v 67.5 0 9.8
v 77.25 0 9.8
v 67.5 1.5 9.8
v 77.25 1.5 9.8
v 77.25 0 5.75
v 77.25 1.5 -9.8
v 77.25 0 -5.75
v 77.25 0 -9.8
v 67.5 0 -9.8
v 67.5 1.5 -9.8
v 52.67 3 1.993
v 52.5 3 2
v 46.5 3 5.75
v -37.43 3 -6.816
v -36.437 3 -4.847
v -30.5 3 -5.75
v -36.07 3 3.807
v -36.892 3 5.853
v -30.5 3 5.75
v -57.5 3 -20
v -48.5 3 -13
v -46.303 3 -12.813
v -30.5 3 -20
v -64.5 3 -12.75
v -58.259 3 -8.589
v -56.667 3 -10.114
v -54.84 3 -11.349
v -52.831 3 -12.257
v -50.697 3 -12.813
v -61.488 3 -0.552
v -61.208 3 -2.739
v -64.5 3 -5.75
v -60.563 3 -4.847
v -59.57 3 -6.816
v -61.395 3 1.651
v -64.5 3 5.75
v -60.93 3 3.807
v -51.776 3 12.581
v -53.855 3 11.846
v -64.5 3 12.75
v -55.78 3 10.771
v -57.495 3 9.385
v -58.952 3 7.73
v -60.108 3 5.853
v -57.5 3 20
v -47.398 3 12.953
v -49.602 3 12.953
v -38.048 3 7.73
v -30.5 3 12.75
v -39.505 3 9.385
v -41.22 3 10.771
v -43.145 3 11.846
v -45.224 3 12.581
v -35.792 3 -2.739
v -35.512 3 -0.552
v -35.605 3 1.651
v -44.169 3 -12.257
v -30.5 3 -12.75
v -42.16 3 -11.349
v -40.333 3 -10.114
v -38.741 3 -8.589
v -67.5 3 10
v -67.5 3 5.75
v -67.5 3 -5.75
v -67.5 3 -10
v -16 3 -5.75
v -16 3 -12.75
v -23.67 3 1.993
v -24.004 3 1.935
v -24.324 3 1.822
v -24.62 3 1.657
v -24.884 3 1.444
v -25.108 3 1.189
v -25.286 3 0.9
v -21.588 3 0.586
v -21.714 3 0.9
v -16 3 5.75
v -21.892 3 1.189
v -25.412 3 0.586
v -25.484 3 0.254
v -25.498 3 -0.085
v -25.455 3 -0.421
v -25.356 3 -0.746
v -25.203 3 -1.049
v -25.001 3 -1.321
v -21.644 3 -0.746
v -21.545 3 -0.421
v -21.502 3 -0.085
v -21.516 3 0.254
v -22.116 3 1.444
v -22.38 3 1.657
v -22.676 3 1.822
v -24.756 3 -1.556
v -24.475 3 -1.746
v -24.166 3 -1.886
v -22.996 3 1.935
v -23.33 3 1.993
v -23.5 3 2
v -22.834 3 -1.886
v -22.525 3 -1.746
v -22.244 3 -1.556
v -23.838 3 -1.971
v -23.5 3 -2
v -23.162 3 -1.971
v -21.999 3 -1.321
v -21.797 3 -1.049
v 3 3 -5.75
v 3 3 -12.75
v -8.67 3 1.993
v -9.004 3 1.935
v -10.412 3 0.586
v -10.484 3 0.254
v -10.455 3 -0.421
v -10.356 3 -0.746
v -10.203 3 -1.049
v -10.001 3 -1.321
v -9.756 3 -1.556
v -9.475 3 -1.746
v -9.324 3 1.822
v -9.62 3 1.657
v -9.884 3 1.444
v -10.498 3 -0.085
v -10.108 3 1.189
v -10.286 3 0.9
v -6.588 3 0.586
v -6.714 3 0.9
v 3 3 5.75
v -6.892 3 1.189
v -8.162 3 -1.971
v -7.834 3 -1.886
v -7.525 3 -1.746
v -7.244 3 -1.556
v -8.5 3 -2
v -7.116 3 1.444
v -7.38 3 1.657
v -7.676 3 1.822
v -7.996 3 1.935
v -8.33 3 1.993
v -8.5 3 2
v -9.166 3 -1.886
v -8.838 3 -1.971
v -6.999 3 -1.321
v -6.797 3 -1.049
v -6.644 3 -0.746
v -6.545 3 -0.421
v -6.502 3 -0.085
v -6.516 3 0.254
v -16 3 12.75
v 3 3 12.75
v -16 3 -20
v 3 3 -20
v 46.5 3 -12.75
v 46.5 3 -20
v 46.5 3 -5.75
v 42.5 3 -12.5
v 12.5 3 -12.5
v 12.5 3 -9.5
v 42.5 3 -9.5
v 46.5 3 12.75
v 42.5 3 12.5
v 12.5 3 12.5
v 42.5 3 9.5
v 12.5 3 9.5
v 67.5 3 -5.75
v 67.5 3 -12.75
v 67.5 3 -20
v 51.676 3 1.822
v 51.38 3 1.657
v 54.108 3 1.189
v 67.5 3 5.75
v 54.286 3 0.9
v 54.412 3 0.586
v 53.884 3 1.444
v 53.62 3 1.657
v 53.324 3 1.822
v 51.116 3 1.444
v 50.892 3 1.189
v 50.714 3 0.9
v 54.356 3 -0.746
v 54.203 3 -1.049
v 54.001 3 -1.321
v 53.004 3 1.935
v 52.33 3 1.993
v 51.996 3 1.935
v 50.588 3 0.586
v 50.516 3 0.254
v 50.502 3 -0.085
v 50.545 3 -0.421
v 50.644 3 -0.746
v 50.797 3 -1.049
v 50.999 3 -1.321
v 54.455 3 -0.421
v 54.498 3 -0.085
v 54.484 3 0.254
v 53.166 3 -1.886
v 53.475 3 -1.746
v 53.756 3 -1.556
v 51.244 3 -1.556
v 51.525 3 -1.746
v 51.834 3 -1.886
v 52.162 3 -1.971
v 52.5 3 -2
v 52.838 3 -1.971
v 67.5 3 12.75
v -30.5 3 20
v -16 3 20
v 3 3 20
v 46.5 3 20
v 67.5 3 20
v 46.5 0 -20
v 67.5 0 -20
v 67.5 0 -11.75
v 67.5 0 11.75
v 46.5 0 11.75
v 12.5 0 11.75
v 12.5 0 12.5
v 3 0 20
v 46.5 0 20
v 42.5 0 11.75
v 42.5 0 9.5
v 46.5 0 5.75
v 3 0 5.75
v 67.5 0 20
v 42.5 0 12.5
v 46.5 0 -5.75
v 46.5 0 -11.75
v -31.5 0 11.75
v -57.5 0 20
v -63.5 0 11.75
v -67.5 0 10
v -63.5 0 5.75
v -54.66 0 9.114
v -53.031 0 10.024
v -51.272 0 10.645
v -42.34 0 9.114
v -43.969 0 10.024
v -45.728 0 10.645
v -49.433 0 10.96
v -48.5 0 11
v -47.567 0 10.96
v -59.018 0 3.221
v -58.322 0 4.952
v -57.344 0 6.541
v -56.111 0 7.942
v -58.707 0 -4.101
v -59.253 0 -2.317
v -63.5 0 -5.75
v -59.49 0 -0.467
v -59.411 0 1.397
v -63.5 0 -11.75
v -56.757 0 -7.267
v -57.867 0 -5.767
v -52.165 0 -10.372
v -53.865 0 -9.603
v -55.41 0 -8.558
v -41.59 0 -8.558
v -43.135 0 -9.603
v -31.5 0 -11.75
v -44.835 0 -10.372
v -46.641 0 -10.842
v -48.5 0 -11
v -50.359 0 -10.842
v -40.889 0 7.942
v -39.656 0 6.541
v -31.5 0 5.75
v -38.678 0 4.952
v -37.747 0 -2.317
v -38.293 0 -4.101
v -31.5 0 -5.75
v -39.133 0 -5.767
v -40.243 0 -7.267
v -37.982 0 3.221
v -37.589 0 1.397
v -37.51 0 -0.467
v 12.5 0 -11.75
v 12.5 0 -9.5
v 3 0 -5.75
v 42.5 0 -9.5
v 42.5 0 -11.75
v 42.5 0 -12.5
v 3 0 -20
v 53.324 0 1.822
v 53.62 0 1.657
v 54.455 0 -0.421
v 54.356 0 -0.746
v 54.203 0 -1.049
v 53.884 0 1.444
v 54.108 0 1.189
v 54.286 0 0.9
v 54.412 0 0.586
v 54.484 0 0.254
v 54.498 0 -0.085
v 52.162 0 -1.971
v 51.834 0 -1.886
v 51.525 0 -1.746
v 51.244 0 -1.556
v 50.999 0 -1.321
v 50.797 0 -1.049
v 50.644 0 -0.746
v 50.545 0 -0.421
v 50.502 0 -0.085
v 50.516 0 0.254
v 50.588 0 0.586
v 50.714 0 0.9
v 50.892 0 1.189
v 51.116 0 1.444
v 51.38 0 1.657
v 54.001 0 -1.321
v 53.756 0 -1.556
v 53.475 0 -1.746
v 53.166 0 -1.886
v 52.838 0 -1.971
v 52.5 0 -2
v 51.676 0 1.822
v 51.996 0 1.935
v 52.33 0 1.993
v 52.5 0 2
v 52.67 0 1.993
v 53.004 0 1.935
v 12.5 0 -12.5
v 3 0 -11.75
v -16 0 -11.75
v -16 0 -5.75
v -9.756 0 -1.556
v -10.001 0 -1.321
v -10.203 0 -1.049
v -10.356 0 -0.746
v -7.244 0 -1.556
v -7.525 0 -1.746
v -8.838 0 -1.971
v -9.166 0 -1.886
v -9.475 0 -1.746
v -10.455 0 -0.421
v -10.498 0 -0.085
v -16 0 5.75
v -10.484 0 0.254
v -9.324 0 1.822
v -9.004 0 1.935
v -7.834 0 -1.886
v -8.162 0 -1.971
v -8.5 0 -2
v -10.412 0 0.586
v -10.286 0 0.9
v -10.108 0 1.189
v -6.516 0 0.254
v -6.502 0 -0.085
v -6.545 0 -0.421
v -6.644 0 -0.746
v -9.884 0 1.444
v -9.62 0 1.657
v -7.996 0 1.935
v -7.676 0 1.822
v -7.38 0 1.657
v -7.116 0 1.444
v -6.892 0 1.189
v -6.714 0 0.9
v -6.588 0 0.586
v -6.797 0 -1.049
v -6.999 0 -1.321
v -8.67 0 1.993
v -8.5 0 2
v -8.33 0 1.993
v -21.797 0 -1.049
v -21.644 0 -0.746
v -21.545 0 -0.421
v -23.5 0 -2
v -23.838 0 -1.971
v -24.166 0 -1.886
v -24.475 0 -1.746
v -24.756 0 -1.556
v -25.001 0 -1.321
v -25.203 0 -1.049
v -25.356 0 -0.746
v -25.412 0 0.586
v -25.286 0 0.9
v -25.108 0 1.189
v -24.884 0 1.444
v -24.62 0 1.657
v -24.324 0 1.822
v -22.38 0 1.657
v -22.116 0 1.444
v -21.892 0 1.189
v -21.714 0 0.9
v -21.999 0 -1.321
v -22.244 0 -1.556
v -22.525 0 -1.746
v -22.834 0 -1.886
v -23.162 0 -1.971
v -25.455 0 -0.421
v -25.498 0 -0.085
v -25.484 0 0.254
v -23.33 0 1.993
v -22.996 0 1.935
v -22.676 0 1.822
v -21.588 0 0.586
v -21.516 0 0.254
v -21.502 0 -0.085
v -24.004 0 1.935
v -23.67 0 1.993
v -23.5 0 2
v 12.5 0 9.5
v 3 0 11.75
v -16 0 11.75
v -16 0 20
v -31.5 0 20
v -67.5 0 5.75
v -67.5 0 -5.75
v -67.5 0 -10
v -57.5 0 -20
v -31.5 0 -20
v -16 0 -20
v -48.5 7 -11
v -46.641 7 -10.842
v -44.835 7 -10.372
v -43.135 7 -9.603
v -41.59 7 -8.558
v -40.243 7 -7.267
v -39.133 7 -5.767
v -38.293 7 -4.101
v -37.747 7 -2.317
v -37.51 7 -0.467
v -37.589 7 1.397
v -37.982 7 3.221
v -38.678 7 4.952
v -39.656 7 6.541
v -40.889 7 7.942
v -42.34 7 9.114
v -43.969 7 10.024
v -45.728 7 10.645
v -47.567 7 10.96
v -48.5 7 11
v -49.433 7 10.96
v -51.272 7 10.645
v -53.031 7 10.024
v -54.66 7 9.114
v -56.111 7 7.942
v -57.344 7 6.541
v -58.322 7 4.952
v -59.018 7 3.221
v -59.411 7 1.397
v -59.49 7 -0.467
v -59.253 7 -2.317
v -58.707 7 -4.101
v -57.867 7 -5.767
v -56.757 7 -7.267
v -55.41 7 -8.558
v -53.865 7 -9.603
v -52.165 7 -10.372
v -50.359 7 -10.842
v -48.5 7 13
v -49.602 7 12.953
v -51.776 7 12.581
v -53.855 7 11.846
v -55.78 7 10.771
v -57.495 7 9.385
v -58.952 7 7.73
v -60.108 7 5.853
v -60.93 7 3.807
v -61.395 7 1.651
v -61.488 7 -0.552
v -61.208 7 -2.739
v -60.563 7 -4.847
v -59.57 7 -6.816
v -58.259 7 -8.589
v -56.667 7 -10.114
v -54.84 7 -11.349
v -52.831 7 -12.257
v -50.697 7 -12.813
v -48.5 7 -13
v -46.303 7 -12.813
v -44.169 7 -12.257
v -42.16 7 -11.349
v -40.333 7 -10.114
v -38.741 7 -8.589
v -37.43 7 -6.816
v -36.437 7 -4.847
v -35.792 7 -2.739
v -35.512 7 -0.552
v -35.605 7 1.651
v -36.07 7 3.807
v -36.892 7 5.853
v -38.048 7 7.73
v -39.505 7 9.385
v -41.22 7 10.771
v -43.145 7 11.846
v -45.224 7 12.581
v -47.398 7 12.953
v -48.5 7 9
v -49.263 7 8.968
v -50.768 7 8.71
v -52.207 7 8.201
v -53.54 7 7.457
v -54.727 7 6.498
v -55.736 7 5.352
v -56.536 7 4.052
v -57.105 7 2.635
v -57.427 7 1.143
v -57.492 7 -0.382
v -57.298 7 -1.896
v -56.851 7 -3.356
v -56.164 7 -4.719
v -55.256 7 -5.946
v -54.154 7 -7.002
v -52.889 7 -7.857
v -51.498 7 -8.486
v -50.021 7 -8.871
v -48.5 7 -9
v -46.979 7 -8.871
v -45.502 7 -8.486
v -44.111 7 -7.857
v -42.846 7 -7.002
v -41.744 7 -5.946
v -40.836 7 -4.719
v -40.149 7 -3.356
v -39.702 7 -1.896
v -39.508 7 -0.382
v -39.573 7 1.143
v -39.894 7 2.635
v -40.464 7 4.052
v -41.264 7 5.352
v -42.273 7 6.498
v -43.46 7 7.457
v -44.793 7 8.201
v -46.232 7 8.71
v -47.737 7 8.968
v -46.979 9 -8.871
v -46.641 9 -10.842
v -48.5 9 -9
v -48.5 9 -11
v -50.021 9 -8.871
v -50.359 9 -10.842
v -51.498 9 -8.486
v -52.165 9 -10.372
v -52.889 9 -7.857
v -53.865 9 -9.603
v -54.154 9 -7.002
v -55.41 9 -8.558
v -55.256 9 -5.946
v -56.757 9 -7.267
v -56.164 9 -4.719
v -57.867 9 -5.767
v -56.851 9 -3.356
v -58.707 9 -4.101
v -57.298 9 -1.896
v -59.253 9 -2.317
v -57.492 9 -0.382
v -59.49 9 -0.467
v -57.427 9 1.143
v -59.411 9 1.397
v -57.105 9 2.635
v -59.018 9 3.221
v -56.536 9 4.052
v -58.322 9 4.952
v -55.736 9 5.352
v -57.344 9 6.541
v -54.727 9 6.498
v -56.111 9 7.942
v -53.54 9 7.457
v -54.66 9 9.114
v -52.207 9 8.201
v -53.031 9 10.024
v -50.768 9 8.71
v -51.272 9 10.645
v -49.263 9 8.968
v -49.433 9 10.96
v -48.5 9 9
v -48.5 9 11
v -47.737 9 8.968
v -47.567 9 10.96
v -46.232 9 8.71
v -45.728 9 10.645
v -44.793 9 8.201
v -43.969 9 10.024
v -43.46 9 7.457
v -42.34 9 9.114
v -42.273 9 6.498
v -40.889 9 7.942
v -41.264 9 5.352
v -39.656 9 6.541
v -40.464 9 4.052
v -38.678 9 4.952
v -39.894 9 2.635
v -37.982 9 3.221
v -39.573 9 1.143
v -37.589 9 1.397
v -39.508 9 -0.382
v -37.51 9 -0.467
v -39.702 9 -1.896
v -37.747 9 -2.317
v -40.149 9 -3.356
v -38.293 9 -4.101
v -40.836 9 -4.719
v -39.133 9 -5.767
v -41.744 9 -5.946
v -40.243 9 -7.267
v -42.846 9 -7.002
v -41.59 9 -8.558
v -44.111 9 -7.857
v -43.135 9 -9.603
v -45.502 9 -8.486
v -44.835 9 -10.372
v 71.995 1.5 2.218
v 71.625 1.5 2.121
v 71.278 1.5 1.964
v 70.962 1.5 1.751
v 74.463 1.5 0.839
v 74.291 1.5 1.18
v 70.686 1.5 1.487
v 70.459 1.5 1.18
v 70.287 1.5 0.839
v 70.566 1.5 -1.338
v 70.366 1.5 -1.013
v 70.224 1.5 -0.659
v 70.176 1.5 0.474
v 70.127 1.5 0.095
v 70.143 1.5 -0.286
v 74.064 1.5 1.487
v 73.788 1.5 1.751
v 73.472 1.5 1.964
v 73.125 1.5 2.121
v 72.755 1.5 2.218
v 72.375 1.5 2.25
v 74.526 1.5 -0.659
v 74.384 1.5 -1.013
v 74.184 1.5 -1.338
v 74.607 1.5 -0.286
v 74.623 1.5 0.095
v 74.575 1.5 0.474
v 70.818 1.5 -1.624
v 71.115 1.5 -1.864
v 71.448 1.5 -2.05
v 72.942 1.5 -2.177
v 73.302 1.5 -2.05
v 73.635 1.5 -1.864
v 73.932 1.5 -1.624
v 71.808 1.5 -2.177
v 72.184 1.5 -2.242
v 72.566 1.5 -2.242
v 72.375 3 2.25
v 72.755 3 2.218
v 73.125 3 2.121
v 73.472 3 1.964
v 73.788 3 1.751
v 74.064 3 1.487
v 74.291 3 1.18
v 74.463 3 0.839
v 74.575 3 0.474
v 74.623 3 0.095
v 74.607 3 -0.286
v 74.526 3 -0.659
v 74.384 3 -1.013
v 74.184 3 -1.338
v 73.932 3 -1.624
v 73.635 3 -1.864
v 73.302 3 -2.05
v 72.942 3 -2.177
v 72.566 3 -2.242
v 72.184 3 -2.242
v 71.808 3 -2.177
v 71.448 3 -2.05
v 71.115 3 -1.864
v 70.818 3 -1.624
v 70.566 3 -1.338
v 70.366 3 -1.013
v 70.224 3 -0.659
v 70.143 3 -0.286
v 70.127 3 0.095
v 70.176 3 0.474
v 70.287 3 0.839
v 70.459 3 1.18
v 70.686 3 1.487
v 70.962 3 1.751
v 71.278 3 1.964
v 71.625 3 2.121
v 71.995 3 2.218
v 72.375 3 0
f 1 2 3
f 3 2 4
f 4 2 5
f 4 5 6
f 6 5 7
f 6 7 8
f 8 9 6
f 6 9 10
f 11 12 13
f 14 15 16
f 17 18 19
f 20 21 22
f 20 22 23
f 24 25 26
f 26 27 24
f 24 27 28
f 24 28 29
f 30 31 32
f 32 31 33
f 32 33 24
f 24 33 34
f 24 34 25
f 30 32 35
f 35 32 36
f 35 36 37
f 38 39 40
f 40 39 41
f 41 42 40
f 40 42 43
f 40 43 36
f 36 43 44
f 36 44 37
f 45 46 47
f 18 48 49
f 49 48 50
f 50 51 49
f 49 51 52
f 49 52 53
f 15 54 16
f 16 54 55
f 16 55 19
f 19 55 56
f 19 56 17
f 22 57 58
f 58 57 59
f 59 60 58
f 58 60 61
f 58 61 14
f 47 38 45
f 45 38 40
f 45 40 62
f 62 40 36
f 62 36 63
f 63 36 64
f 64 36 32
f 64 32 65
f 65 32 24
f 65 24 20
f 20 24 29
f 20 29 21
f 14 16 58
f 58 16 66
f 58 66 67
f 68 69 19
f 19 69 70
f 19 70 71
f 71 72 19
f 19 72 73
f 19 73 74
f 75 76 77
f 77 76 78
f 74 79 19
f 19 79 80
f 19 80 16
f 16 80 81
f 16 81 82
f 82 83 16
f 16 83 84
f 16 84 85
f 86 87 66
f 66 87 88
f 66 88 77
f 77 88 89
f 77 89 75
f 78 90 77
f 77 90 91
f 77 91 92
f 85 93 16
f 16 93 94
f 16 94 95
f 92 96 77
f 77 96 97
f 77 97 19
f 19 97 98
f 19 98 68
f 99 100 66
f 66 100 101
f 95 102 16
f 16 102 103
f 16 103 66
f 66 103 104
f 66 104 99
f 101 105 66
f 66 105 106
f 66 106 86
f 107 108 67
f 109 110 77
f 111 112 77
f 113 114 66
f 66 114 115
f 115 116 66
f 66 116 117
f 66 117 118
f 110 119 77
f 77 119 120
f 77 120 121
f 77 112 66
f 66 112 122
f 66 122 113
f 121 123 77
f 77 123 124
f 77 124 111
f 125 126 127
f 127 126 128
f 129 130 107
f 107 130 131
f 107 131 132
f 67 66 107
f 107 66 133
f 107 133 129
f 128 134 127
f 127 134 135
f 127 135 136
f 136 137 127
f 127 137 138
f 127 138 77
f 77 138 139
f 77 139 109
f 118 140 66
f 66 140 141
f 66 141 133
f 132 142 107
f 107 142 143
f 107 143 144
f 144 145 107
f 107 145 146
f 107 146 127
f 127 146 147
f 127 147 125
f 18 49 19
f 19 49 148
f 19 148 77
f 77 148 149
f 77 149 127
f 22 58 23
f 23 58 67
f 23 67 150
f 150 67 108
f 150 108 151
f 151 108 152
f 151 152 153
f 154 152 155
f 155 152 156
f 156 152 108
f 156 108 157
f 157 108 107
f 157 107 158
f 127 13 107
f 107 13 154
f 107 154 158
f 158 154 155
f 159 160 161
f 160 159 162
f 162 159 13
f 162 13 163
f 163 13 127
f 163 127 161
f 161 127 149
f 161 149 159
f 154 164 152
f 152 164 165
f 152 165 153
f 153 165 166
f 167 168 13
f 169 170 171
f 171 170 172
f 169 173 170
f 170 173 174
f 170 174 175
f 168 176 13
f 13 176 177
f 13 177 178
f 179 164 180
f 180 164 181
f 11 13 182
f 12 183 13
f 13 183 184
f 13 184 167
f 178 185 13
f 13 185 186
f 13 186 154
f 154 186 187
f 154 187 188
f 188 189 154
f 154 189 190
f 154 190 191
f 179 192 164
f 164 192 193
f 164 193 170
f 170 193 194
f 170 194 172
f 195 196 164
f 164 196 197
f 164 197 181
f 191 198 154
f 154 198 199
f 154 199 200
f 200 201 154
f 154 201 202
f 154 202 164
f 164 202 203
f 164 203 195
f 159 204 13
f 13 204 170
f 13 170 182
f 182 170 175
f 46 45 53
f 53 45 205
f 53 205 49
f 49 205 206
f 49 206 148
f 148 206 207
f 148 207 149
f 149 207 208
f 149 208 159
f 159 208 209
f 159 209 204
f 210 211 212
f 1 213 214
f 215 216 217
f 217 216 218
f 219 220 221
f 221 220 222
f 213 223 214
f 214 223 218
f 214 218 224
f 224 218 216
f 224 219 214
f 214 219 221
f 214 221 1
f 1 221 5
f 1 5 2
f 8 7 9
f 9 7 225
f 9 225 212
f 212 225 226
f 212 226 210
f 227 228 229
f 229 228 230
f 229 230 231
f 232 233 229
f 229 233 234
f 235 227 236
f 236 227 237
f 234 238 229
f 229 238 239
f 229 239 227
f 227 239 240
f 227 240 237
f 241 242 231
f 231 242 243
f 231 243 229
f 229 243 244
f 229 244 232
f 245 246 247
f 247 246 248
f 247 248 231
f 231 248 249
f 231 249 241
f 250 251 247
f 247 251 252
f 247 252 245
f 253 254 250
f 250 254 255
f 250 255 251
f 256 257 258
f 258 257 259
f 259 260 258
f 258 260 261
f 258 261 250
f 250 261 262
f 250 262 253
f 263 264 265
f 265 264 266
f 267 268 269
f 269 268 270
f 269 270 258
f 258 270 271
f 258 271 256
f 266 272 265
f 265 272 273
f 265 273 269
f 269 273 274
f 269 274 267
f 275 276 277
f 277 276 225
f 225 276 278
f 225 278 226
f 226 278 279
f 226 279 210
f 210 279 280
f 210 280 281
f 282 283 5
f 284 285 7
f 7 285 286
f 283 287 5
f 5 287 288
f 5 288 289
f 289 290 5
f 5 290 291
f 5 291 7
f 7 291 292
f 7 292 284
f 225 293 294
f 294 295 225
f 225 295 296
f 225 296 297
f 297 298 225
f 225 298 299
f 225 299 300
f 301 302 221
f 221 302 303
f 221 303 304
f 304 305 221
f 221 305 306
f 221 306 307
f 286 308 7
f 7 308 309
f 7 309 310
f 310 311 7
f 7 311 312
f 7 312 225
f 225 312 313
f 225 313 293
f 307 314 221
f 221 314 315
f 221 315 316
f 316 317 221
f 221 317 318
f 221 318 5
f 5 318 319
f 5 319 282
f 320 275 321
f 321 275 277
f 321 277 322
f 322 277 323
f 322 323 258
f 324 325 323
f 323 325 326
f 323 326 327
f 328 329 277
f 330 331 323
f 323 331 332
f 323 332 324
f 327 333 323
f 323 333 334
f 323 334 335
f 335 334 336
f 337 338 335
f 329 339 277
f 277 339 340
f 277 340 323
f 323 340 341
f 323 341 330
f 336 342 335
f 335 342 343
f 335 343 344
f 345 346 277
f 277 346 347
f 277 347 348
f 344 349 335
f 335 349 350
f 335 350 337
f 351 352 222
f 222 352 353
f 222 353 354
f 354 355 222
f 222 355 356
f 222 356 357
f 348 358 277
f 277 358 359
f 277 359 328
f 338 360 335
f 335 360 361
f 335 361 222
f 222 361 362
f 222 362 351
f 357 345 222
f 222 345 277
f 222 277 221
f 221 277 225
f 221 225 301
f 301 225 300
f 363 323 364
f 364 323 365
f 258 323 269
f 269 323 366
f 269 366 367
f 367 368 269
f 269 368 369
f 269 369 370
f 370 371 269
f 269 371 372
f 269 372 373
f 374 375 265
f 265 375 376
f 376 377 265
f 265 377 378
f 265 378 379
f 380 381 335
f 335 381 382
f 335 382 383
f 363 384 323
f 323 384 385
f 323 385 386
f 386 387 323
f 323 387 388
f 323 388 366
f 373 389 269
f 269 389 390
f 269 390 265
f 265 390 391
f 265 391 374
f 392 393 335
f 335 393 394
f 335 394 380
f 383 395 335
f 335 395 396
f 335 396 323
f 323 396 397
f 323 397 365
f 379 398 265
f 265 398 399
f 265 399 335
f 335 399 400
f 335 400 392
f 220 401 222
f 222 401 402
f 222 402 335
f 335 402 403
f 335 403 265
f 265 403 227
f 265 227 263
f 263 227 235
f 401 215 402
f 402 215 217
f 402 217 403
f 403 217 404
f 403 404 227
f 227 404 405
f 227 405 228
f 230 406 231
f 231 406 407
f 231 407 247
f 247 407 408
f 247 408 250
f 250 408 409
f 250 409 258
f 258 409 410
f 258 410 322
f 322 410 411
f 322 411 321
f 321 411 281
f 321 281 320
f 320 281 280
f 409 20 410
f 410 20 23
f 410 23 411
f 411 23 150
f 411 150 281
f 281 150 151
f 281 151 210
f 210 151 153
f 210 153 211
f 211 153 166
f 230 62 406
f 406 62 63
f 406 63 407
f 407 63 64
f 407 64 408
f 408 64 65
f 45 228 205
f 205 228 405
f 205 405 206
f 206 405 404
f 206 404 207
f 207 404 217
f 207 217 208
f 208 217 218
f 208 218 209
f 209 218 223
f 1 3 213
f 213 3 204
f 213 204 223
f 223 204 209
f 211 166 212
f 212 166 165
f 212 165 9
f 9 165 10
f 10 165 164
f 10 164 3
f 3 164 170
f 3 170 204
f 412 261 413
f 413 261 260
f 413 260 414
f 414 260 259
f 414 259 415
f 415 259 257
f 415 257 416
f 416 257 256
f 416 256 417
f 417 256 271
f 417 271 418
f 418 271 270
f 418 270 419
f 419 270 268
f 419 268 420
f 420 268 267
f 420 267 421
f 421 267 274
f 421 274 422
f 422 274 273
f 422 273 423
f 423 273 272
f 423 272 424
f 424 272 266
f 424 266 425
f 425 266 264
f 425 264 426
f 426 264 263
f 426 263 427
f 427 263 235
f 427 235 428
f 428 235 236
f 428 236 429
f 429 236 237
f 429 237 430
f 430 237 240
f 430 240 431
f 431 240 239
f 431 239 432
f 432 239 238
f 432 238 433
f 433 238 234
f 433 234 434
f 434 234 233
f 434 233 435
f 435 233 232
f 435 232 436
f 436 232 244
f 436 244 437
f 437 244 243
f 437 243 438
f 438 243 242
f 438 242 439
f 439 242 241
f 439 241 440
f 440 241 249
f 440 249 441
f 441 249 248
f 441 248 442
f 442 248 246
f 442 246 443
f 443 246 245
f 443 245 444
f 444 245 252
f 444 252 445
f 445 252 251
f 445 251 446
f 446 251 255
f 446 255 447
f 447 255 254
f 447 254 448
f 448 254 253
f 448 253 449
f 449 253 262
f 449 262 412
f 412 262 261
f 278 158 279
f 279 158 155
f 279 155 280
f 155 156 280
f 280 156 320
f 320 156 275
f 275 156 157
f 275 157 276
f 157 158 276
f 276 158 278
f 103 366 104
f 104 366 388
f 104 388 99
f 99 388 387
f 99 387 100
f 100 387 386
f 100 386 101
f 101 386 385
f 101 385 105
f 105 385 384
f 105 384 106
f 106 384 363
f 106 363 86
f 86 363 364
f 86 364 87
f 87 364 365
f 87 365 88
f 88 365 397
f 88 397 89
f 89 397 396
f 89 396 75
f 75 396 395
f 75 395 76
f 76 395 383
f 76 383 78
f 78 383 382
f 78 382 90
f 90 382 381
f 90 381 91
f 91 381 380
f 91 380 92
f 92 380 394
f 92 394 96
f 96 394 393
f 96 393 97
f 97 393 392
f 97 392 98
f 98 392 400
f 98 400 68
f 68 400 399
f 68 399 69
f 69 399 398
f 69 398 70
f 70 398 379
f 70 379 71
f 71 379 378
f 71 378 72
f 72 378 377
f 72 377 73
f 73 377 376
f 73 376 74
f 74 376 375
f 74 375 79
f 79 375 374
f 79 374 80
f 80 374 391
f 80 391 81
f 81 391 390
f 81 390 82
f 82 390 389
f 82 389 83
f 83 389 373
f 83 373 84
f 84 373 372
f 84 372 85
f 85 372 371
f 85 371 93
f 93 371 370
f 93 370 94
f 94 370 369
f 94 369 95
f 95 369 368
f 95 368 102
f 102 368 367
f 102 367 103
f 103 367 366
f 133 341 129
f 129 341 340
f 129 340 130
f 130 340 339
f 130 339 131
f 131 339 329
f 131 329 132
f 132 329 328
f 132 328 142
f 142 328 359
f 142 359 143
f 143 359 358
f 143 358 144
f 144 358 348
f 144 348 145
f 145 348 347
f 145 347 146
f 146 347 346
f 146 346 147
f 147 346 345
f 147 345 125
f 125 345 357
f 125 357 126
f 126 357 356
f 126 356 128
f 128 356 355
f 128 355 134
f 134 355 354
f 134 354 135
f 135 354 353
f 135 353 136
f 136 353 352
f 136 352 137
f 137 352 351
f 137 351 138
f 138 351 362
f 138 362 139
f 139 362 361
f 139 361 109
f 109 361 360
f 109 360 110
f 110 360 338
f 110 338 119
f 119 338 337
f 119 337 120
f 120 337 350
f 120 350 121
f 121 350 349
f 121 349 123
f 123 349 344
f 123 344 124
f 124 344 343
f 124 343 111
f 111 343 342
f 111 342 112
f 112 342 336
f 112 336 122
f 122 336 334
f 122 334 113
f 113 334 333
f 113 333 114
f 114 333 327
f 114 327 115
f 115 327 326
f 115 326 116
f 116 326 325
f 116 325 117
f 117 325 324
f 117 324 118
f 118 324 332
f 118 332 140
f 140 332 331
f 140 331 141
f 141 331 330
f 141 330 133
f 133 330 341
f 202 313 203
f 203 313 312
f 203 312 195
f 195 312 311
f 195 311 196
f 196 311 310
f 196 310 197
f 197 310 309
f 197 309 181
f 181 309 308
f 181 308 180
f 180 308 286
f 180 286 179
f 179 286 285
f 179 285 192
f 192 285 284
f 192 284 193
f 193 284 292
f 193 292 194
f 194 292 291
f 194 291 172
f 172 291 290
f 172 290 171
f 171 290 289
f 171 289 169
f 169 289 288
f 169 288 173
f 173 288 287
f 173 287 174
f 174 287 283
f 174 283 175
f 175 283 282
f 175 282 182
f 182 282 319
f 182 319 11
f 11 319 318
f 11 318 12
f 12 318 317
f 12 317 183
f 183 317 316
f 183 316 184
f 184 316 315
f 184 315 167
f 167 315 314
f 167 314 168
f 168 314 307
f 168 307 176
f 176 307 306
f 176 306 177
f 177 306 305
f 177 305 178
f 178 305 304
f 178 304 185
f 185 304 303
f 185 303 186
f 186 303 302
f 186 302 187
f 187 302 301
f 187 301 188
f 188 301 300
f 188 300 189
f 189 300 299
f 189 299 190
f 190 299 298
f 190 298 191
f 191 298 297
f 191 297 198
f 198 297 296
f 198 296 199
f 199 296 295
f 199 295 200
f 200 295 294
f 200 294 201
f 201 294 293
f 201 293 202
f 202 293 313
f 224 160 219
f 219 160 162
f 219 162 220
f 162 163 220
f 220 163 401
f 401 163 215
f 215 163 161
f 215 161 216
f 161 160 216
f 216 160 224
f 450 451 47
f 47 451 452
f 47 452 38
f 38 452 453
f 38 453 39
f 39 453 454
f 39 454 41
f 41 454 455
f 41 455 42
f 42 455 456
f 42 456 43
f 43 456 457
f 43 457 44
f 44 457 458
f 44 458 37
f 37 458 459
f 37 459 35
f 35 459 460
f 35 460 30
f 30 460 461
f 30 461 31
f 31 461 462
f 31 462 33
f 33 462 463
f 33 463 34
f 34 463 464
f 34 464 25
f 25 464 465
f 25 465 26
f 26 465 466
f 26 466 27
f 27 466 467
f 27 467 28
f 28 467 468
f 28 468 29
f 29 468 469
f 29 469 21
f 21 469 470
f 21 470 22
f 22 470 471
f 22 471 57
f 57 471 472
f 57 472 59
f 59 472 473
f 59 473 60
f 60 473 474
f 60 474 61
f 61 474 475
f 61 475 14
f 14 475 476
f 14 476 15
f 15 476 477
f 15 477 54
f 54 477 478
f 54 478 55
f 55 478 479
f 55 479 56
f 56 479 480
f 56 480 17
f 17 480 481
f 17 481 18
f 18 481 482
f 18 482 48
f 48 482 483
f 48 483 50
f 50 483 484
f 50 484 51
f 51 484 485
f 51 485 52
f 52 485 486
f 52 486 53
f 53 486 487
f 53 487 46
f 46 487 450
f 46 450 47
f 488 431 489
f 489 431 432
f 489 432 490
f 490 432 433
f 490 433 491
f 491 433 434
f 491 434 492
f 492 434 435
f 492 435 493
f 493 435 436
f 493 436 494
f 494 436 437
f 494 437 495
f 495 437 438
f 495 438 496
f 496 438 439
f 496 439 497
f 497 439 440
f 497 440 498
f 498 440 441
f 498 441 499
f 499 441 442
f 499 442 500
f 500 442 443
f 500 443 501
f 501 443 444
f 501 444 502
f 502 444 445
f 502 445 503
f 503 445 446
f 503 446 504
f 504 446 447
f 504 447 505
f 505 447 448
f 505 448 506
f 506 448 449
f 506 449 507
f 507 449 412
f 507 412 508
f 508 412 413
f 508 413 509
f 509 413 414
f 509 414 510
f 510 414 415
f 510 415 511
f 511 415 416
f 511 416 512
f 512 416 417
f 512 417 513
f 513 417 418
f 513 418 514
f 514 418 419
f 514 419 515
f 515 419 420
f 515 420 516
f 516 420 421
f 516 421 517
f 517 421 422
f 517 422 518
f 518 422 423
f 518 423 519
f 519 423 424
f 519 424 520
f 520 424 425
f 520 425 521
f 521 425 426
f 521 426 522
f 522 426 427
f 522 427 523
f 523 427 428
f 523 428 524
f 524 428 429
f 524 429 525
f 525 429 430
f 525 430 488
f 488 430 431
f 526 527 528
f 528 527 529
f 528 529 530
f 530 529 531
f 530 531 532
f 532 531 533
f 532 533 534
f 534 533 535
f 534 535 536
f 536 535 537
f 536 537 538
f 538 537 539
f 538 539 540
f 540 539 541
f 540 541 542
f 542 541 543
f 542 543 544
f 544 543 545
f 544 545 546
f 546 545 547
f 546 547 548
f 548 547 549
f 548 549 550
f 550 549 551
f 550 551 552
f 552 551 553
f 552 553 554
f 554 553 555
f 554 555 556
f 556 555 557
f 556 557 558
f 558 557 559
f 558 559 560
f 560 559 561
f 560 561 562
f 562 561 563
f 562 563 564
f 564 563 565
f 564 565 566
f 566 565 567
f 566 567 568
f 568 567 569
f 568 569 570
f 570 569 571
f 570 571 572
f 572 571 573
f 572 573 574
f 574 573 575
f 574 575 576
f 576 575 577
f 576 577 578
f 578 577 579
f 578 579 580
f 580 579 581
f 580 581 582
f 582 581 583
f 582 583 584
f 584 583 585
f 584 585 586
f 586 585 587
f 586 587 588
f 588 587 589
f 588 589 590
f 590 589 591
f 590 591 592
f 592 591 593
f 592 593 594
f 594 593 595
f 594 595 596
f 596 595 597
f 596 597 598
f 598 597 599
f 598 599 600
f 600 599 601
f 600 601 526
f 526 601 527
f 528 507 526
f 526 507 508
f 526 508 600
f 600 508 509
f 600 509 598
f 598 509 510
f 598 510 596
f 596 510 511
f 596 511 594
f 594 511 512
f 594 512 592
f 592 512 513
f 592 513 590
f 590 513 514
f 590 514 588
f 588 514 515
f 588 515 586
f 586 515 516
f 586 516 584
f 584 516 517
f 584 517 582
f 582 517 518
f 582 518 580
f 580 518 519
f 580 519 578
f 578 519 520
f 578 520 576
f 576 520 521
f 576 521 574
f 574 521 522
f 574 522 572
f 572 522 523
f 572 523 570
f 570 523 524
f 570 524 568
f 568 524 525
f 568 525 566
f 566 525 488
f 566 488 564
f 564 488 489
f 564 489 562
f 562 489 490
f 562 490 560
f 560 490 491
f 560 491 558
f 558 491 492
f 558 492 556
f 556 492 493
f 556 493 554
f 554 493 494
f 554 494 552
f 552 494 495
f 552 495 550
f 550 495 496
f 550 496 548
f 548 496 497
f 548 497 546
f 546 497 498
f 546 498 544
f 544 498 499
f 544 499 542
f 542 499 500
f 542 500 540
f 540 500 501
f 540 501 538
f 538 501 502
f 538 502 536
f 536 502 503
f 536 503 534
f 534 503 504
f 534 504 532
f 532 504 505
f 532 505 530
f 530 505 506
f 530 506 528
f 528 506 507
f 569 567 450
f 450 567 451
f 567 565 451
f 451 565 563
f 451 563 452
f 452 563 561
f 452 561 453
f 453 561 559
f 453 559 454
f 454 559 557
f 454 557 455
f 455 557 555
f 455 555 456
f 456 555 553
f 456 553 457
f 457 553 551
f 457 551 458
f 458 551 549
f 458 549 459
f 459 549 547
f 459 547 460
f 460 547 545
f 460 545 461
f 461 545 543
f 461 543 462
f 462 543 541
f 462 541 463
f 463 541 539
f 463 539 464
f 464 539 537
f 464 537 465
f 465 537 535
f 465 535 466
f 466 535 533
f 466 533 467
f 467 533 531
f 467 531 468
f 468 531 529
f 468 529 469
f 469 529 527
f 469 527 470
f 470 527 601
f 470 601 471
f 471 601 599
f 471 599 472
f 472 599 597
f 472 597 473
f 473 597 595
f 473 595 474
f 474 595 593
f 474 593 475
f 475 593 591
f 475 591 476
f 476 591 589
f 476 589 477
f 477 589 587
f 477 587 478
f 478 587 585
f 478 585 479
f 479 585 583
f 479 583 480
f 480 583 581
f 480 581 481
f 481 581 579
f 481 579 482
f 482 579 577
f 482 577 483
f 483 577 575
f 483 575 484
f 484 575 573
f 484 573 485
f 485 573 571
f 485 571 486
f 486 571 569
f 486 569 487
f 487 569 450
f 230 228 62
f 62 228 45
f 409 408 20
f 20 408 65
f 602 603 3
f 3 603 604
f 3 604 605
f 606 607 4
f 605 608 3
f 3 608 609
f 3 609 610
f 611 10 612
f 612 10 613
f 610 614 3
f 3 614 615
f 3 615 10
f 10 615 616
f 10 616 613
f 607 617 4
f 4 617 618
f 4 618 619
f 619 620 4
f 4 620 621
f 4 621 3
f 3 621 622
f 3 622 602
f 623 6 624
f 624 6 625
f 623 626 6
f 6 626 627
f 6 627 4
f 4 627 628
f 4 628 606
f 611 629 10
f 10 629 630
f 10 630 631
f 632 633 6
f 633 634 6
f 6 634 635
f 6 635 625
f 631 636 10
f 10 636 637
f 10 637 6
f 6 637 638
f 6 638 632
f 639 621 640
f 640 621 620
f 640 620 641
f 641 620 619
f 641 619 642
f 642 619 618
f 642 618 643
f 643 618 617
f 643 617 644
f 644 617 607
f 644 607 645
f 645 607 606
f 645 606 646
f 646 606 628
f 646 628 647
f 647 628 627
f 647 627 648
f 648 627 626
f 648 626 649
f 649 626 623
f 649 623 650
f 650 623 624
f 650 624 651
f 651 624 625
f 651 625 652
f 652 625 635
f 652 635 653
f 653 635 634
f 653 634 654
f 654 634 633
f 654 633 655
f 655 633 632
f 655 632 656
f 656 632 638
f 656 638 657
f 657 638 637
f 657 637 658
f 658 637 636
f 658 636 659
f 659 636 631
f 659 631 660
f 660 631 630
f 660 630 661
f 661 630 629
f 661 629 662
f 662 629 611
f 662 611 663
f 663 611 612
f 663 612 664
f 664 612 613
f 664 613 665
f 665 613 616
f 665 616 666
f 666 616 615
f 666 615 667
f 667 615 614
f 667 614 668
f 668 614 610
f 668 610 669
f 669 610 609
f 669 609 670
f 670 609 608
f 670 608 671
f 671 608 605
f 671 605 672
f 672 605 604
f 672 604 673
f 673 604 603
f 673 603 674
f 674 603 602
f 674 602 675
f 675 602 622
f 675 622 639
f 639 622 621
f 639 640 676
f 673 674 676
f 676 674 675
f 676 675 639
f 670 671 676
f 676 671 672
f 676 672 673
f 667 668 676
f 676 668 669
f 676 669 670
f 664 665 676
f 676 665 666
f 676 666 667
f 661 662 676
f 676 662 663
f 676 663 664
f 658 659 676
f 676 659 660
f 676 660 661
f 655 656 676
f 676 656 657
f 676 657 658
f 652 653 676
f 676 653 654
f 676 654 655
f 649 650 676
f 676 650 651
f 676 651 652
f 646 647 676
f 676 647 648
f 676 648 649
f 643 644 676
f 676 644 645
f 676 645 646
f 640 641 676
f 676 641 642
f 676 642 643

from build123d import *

# Parameters (mm, degrees)
CROQUIS1_R              = 11
CROQUIS1_R_2            = 2
CROQUIS1_W              = 30
CROQUIS1_H              = 3
SALIENTE_EXTRUIR1_DEPTH = 3
CROQUIS2_R              = 13
CROQUIS2_R_2            = 11
SALIENTE_EXTRUIR2_DEPTH = 4
CROQUIS3_R              = 13
CROQUIS3_R_2            = 9
SALIENTE_EXTRUIR3_DEPTH = 2
CHAFL_N1_SIZE           = 2
CHAFL_N2_SIZE           = 10
CROQUIS6_W              = 9.75
CROQUIS6_H              = 19.6
CROQUIS6_R              = 2.25
CORTAR_EXTRUIR2_DEPTH   = 1.5


with BuildPart() as part:
    # Croquis1 → Saliente-Extruir1 (new body)
    with BuildSketch(Plane(origin=(0, 0, 0), x_dir=(1, 0, 0), z_dir=(0, 1, 0))):
        Polygon((-67.5, -20), (67.5, -20), (67.5, -9.8), (77.25, -9.8), (77.25, 9.8), (67.5, 9.8), (67.5, 20), (-67.5, 20), align=None)
        with Locations(Location((-48.5, 0, 0), (0, 0, 270))):
            Circle(CROQUIS1_R, mode=Mode.SUBTRACT)
        with Locations(Location((-23.5, 0, 0), (0, 0, 270))):
            Circle(CROQUIS1_R_2, mode=Mode.SUBTRACT)
        with Locations(Location((-8.5, 0, 0), (0, 0, 270))):
            Circle(CROQUIS1_R_2, mode=Mode.SUBTRACT)
        with Locations(Location((52.5, 0, 0), (0, 0, 270))):
            Circle(CROQUIS1_R_2, mode=Mode.SUBTRACT)
        with Locations((27.5, 11)):
            Rectangle(CROQUIS1_W, CROQUIS1_H, mode=Mode.SUBTRACT)
        with Locations((27.5, -11)):
            Rectangle(CROQUIS1_W, CROQUIS1_H, mode=Mode.SUBTRACT)
    extrude(amount=SALIENTE_EXTRUIR1_DEPTH)

    # Croquis2 → Saliente-Extruir2 (add)
    with BuildSketch(Plane(origin=(0, 3, 0), x_dir=(1, 0, 0), z_dir=(0, 1, 0))):
        with Locations(Location((-48.5, 0, 0), (0, 0, 90))):
            Circle(CROQUIS2_R)
        with Locations(Location((-48.5, 0, 0), (0, 0, 270))):
            Circle(CROQUIS2_R_2, mode=Mode.SUBTRACT)
    extrude(amount=SALIENTE_EXTRUIR2_DEPTH)

    # Croquis3 → Saliente-Extruir3 (add)
    with BuildSketch(Plane(origin=(0, 7, 0), x_dir=(1, 0, 0), z_dir=(0, 1, 0))):
        with Locations(Location((-48.5, 0, 0), (0, 0, 90))):
            Circle(CROQUIS3_R)
        with Locations(Location((-48.5, 0, 0), (0, 0, 270))):
            Circle(CROQUIS3_R_2, mode=Mode.SUBTRACT)
    extrude(amount=SALIENTE_EXTRUIR3_DEPTH)

    # Chaflán1
    chafl_n1_edges = [part.edges().sort_by_distance(p)[0] for p in [
        (-48.5, 9, 13),
    ]]
    chamfer(chafl_n1_edges, length=CHAFL_N1_SIZE)

    # Chaflán2
    chafl_n2_edges = [part.edges().sort_by_distance(p)[0] for p in [
        (-67.5, 1.5, 20),
        (-67.5, 1.5, -20),
    ]]
    chamfer(chafl_n2_edges, length=CHAFL_N2_SIZE)

    # Croquis6 → Cortar-Extruir2 (cut)
    with BuildSketch(Plane(origin=(0, 3, 0), x_dir=(1, 0, 0), z_dir=(0, 1, 0))):
        with Locations((72.375, 0)):
            Rectangle(CROQUIS6_W, CROQUIS6_H)
        with Locations(Location((72.375, 0, 0), (0, 0, 270))):
            Circle(CROQUIS6_R, mode=Mode.SUBTRACT)
    extrude(amount=-CORTAR_EXTRUIR2_DEPTH, mode=Mode.SUBTRACT)


solid = part.part
